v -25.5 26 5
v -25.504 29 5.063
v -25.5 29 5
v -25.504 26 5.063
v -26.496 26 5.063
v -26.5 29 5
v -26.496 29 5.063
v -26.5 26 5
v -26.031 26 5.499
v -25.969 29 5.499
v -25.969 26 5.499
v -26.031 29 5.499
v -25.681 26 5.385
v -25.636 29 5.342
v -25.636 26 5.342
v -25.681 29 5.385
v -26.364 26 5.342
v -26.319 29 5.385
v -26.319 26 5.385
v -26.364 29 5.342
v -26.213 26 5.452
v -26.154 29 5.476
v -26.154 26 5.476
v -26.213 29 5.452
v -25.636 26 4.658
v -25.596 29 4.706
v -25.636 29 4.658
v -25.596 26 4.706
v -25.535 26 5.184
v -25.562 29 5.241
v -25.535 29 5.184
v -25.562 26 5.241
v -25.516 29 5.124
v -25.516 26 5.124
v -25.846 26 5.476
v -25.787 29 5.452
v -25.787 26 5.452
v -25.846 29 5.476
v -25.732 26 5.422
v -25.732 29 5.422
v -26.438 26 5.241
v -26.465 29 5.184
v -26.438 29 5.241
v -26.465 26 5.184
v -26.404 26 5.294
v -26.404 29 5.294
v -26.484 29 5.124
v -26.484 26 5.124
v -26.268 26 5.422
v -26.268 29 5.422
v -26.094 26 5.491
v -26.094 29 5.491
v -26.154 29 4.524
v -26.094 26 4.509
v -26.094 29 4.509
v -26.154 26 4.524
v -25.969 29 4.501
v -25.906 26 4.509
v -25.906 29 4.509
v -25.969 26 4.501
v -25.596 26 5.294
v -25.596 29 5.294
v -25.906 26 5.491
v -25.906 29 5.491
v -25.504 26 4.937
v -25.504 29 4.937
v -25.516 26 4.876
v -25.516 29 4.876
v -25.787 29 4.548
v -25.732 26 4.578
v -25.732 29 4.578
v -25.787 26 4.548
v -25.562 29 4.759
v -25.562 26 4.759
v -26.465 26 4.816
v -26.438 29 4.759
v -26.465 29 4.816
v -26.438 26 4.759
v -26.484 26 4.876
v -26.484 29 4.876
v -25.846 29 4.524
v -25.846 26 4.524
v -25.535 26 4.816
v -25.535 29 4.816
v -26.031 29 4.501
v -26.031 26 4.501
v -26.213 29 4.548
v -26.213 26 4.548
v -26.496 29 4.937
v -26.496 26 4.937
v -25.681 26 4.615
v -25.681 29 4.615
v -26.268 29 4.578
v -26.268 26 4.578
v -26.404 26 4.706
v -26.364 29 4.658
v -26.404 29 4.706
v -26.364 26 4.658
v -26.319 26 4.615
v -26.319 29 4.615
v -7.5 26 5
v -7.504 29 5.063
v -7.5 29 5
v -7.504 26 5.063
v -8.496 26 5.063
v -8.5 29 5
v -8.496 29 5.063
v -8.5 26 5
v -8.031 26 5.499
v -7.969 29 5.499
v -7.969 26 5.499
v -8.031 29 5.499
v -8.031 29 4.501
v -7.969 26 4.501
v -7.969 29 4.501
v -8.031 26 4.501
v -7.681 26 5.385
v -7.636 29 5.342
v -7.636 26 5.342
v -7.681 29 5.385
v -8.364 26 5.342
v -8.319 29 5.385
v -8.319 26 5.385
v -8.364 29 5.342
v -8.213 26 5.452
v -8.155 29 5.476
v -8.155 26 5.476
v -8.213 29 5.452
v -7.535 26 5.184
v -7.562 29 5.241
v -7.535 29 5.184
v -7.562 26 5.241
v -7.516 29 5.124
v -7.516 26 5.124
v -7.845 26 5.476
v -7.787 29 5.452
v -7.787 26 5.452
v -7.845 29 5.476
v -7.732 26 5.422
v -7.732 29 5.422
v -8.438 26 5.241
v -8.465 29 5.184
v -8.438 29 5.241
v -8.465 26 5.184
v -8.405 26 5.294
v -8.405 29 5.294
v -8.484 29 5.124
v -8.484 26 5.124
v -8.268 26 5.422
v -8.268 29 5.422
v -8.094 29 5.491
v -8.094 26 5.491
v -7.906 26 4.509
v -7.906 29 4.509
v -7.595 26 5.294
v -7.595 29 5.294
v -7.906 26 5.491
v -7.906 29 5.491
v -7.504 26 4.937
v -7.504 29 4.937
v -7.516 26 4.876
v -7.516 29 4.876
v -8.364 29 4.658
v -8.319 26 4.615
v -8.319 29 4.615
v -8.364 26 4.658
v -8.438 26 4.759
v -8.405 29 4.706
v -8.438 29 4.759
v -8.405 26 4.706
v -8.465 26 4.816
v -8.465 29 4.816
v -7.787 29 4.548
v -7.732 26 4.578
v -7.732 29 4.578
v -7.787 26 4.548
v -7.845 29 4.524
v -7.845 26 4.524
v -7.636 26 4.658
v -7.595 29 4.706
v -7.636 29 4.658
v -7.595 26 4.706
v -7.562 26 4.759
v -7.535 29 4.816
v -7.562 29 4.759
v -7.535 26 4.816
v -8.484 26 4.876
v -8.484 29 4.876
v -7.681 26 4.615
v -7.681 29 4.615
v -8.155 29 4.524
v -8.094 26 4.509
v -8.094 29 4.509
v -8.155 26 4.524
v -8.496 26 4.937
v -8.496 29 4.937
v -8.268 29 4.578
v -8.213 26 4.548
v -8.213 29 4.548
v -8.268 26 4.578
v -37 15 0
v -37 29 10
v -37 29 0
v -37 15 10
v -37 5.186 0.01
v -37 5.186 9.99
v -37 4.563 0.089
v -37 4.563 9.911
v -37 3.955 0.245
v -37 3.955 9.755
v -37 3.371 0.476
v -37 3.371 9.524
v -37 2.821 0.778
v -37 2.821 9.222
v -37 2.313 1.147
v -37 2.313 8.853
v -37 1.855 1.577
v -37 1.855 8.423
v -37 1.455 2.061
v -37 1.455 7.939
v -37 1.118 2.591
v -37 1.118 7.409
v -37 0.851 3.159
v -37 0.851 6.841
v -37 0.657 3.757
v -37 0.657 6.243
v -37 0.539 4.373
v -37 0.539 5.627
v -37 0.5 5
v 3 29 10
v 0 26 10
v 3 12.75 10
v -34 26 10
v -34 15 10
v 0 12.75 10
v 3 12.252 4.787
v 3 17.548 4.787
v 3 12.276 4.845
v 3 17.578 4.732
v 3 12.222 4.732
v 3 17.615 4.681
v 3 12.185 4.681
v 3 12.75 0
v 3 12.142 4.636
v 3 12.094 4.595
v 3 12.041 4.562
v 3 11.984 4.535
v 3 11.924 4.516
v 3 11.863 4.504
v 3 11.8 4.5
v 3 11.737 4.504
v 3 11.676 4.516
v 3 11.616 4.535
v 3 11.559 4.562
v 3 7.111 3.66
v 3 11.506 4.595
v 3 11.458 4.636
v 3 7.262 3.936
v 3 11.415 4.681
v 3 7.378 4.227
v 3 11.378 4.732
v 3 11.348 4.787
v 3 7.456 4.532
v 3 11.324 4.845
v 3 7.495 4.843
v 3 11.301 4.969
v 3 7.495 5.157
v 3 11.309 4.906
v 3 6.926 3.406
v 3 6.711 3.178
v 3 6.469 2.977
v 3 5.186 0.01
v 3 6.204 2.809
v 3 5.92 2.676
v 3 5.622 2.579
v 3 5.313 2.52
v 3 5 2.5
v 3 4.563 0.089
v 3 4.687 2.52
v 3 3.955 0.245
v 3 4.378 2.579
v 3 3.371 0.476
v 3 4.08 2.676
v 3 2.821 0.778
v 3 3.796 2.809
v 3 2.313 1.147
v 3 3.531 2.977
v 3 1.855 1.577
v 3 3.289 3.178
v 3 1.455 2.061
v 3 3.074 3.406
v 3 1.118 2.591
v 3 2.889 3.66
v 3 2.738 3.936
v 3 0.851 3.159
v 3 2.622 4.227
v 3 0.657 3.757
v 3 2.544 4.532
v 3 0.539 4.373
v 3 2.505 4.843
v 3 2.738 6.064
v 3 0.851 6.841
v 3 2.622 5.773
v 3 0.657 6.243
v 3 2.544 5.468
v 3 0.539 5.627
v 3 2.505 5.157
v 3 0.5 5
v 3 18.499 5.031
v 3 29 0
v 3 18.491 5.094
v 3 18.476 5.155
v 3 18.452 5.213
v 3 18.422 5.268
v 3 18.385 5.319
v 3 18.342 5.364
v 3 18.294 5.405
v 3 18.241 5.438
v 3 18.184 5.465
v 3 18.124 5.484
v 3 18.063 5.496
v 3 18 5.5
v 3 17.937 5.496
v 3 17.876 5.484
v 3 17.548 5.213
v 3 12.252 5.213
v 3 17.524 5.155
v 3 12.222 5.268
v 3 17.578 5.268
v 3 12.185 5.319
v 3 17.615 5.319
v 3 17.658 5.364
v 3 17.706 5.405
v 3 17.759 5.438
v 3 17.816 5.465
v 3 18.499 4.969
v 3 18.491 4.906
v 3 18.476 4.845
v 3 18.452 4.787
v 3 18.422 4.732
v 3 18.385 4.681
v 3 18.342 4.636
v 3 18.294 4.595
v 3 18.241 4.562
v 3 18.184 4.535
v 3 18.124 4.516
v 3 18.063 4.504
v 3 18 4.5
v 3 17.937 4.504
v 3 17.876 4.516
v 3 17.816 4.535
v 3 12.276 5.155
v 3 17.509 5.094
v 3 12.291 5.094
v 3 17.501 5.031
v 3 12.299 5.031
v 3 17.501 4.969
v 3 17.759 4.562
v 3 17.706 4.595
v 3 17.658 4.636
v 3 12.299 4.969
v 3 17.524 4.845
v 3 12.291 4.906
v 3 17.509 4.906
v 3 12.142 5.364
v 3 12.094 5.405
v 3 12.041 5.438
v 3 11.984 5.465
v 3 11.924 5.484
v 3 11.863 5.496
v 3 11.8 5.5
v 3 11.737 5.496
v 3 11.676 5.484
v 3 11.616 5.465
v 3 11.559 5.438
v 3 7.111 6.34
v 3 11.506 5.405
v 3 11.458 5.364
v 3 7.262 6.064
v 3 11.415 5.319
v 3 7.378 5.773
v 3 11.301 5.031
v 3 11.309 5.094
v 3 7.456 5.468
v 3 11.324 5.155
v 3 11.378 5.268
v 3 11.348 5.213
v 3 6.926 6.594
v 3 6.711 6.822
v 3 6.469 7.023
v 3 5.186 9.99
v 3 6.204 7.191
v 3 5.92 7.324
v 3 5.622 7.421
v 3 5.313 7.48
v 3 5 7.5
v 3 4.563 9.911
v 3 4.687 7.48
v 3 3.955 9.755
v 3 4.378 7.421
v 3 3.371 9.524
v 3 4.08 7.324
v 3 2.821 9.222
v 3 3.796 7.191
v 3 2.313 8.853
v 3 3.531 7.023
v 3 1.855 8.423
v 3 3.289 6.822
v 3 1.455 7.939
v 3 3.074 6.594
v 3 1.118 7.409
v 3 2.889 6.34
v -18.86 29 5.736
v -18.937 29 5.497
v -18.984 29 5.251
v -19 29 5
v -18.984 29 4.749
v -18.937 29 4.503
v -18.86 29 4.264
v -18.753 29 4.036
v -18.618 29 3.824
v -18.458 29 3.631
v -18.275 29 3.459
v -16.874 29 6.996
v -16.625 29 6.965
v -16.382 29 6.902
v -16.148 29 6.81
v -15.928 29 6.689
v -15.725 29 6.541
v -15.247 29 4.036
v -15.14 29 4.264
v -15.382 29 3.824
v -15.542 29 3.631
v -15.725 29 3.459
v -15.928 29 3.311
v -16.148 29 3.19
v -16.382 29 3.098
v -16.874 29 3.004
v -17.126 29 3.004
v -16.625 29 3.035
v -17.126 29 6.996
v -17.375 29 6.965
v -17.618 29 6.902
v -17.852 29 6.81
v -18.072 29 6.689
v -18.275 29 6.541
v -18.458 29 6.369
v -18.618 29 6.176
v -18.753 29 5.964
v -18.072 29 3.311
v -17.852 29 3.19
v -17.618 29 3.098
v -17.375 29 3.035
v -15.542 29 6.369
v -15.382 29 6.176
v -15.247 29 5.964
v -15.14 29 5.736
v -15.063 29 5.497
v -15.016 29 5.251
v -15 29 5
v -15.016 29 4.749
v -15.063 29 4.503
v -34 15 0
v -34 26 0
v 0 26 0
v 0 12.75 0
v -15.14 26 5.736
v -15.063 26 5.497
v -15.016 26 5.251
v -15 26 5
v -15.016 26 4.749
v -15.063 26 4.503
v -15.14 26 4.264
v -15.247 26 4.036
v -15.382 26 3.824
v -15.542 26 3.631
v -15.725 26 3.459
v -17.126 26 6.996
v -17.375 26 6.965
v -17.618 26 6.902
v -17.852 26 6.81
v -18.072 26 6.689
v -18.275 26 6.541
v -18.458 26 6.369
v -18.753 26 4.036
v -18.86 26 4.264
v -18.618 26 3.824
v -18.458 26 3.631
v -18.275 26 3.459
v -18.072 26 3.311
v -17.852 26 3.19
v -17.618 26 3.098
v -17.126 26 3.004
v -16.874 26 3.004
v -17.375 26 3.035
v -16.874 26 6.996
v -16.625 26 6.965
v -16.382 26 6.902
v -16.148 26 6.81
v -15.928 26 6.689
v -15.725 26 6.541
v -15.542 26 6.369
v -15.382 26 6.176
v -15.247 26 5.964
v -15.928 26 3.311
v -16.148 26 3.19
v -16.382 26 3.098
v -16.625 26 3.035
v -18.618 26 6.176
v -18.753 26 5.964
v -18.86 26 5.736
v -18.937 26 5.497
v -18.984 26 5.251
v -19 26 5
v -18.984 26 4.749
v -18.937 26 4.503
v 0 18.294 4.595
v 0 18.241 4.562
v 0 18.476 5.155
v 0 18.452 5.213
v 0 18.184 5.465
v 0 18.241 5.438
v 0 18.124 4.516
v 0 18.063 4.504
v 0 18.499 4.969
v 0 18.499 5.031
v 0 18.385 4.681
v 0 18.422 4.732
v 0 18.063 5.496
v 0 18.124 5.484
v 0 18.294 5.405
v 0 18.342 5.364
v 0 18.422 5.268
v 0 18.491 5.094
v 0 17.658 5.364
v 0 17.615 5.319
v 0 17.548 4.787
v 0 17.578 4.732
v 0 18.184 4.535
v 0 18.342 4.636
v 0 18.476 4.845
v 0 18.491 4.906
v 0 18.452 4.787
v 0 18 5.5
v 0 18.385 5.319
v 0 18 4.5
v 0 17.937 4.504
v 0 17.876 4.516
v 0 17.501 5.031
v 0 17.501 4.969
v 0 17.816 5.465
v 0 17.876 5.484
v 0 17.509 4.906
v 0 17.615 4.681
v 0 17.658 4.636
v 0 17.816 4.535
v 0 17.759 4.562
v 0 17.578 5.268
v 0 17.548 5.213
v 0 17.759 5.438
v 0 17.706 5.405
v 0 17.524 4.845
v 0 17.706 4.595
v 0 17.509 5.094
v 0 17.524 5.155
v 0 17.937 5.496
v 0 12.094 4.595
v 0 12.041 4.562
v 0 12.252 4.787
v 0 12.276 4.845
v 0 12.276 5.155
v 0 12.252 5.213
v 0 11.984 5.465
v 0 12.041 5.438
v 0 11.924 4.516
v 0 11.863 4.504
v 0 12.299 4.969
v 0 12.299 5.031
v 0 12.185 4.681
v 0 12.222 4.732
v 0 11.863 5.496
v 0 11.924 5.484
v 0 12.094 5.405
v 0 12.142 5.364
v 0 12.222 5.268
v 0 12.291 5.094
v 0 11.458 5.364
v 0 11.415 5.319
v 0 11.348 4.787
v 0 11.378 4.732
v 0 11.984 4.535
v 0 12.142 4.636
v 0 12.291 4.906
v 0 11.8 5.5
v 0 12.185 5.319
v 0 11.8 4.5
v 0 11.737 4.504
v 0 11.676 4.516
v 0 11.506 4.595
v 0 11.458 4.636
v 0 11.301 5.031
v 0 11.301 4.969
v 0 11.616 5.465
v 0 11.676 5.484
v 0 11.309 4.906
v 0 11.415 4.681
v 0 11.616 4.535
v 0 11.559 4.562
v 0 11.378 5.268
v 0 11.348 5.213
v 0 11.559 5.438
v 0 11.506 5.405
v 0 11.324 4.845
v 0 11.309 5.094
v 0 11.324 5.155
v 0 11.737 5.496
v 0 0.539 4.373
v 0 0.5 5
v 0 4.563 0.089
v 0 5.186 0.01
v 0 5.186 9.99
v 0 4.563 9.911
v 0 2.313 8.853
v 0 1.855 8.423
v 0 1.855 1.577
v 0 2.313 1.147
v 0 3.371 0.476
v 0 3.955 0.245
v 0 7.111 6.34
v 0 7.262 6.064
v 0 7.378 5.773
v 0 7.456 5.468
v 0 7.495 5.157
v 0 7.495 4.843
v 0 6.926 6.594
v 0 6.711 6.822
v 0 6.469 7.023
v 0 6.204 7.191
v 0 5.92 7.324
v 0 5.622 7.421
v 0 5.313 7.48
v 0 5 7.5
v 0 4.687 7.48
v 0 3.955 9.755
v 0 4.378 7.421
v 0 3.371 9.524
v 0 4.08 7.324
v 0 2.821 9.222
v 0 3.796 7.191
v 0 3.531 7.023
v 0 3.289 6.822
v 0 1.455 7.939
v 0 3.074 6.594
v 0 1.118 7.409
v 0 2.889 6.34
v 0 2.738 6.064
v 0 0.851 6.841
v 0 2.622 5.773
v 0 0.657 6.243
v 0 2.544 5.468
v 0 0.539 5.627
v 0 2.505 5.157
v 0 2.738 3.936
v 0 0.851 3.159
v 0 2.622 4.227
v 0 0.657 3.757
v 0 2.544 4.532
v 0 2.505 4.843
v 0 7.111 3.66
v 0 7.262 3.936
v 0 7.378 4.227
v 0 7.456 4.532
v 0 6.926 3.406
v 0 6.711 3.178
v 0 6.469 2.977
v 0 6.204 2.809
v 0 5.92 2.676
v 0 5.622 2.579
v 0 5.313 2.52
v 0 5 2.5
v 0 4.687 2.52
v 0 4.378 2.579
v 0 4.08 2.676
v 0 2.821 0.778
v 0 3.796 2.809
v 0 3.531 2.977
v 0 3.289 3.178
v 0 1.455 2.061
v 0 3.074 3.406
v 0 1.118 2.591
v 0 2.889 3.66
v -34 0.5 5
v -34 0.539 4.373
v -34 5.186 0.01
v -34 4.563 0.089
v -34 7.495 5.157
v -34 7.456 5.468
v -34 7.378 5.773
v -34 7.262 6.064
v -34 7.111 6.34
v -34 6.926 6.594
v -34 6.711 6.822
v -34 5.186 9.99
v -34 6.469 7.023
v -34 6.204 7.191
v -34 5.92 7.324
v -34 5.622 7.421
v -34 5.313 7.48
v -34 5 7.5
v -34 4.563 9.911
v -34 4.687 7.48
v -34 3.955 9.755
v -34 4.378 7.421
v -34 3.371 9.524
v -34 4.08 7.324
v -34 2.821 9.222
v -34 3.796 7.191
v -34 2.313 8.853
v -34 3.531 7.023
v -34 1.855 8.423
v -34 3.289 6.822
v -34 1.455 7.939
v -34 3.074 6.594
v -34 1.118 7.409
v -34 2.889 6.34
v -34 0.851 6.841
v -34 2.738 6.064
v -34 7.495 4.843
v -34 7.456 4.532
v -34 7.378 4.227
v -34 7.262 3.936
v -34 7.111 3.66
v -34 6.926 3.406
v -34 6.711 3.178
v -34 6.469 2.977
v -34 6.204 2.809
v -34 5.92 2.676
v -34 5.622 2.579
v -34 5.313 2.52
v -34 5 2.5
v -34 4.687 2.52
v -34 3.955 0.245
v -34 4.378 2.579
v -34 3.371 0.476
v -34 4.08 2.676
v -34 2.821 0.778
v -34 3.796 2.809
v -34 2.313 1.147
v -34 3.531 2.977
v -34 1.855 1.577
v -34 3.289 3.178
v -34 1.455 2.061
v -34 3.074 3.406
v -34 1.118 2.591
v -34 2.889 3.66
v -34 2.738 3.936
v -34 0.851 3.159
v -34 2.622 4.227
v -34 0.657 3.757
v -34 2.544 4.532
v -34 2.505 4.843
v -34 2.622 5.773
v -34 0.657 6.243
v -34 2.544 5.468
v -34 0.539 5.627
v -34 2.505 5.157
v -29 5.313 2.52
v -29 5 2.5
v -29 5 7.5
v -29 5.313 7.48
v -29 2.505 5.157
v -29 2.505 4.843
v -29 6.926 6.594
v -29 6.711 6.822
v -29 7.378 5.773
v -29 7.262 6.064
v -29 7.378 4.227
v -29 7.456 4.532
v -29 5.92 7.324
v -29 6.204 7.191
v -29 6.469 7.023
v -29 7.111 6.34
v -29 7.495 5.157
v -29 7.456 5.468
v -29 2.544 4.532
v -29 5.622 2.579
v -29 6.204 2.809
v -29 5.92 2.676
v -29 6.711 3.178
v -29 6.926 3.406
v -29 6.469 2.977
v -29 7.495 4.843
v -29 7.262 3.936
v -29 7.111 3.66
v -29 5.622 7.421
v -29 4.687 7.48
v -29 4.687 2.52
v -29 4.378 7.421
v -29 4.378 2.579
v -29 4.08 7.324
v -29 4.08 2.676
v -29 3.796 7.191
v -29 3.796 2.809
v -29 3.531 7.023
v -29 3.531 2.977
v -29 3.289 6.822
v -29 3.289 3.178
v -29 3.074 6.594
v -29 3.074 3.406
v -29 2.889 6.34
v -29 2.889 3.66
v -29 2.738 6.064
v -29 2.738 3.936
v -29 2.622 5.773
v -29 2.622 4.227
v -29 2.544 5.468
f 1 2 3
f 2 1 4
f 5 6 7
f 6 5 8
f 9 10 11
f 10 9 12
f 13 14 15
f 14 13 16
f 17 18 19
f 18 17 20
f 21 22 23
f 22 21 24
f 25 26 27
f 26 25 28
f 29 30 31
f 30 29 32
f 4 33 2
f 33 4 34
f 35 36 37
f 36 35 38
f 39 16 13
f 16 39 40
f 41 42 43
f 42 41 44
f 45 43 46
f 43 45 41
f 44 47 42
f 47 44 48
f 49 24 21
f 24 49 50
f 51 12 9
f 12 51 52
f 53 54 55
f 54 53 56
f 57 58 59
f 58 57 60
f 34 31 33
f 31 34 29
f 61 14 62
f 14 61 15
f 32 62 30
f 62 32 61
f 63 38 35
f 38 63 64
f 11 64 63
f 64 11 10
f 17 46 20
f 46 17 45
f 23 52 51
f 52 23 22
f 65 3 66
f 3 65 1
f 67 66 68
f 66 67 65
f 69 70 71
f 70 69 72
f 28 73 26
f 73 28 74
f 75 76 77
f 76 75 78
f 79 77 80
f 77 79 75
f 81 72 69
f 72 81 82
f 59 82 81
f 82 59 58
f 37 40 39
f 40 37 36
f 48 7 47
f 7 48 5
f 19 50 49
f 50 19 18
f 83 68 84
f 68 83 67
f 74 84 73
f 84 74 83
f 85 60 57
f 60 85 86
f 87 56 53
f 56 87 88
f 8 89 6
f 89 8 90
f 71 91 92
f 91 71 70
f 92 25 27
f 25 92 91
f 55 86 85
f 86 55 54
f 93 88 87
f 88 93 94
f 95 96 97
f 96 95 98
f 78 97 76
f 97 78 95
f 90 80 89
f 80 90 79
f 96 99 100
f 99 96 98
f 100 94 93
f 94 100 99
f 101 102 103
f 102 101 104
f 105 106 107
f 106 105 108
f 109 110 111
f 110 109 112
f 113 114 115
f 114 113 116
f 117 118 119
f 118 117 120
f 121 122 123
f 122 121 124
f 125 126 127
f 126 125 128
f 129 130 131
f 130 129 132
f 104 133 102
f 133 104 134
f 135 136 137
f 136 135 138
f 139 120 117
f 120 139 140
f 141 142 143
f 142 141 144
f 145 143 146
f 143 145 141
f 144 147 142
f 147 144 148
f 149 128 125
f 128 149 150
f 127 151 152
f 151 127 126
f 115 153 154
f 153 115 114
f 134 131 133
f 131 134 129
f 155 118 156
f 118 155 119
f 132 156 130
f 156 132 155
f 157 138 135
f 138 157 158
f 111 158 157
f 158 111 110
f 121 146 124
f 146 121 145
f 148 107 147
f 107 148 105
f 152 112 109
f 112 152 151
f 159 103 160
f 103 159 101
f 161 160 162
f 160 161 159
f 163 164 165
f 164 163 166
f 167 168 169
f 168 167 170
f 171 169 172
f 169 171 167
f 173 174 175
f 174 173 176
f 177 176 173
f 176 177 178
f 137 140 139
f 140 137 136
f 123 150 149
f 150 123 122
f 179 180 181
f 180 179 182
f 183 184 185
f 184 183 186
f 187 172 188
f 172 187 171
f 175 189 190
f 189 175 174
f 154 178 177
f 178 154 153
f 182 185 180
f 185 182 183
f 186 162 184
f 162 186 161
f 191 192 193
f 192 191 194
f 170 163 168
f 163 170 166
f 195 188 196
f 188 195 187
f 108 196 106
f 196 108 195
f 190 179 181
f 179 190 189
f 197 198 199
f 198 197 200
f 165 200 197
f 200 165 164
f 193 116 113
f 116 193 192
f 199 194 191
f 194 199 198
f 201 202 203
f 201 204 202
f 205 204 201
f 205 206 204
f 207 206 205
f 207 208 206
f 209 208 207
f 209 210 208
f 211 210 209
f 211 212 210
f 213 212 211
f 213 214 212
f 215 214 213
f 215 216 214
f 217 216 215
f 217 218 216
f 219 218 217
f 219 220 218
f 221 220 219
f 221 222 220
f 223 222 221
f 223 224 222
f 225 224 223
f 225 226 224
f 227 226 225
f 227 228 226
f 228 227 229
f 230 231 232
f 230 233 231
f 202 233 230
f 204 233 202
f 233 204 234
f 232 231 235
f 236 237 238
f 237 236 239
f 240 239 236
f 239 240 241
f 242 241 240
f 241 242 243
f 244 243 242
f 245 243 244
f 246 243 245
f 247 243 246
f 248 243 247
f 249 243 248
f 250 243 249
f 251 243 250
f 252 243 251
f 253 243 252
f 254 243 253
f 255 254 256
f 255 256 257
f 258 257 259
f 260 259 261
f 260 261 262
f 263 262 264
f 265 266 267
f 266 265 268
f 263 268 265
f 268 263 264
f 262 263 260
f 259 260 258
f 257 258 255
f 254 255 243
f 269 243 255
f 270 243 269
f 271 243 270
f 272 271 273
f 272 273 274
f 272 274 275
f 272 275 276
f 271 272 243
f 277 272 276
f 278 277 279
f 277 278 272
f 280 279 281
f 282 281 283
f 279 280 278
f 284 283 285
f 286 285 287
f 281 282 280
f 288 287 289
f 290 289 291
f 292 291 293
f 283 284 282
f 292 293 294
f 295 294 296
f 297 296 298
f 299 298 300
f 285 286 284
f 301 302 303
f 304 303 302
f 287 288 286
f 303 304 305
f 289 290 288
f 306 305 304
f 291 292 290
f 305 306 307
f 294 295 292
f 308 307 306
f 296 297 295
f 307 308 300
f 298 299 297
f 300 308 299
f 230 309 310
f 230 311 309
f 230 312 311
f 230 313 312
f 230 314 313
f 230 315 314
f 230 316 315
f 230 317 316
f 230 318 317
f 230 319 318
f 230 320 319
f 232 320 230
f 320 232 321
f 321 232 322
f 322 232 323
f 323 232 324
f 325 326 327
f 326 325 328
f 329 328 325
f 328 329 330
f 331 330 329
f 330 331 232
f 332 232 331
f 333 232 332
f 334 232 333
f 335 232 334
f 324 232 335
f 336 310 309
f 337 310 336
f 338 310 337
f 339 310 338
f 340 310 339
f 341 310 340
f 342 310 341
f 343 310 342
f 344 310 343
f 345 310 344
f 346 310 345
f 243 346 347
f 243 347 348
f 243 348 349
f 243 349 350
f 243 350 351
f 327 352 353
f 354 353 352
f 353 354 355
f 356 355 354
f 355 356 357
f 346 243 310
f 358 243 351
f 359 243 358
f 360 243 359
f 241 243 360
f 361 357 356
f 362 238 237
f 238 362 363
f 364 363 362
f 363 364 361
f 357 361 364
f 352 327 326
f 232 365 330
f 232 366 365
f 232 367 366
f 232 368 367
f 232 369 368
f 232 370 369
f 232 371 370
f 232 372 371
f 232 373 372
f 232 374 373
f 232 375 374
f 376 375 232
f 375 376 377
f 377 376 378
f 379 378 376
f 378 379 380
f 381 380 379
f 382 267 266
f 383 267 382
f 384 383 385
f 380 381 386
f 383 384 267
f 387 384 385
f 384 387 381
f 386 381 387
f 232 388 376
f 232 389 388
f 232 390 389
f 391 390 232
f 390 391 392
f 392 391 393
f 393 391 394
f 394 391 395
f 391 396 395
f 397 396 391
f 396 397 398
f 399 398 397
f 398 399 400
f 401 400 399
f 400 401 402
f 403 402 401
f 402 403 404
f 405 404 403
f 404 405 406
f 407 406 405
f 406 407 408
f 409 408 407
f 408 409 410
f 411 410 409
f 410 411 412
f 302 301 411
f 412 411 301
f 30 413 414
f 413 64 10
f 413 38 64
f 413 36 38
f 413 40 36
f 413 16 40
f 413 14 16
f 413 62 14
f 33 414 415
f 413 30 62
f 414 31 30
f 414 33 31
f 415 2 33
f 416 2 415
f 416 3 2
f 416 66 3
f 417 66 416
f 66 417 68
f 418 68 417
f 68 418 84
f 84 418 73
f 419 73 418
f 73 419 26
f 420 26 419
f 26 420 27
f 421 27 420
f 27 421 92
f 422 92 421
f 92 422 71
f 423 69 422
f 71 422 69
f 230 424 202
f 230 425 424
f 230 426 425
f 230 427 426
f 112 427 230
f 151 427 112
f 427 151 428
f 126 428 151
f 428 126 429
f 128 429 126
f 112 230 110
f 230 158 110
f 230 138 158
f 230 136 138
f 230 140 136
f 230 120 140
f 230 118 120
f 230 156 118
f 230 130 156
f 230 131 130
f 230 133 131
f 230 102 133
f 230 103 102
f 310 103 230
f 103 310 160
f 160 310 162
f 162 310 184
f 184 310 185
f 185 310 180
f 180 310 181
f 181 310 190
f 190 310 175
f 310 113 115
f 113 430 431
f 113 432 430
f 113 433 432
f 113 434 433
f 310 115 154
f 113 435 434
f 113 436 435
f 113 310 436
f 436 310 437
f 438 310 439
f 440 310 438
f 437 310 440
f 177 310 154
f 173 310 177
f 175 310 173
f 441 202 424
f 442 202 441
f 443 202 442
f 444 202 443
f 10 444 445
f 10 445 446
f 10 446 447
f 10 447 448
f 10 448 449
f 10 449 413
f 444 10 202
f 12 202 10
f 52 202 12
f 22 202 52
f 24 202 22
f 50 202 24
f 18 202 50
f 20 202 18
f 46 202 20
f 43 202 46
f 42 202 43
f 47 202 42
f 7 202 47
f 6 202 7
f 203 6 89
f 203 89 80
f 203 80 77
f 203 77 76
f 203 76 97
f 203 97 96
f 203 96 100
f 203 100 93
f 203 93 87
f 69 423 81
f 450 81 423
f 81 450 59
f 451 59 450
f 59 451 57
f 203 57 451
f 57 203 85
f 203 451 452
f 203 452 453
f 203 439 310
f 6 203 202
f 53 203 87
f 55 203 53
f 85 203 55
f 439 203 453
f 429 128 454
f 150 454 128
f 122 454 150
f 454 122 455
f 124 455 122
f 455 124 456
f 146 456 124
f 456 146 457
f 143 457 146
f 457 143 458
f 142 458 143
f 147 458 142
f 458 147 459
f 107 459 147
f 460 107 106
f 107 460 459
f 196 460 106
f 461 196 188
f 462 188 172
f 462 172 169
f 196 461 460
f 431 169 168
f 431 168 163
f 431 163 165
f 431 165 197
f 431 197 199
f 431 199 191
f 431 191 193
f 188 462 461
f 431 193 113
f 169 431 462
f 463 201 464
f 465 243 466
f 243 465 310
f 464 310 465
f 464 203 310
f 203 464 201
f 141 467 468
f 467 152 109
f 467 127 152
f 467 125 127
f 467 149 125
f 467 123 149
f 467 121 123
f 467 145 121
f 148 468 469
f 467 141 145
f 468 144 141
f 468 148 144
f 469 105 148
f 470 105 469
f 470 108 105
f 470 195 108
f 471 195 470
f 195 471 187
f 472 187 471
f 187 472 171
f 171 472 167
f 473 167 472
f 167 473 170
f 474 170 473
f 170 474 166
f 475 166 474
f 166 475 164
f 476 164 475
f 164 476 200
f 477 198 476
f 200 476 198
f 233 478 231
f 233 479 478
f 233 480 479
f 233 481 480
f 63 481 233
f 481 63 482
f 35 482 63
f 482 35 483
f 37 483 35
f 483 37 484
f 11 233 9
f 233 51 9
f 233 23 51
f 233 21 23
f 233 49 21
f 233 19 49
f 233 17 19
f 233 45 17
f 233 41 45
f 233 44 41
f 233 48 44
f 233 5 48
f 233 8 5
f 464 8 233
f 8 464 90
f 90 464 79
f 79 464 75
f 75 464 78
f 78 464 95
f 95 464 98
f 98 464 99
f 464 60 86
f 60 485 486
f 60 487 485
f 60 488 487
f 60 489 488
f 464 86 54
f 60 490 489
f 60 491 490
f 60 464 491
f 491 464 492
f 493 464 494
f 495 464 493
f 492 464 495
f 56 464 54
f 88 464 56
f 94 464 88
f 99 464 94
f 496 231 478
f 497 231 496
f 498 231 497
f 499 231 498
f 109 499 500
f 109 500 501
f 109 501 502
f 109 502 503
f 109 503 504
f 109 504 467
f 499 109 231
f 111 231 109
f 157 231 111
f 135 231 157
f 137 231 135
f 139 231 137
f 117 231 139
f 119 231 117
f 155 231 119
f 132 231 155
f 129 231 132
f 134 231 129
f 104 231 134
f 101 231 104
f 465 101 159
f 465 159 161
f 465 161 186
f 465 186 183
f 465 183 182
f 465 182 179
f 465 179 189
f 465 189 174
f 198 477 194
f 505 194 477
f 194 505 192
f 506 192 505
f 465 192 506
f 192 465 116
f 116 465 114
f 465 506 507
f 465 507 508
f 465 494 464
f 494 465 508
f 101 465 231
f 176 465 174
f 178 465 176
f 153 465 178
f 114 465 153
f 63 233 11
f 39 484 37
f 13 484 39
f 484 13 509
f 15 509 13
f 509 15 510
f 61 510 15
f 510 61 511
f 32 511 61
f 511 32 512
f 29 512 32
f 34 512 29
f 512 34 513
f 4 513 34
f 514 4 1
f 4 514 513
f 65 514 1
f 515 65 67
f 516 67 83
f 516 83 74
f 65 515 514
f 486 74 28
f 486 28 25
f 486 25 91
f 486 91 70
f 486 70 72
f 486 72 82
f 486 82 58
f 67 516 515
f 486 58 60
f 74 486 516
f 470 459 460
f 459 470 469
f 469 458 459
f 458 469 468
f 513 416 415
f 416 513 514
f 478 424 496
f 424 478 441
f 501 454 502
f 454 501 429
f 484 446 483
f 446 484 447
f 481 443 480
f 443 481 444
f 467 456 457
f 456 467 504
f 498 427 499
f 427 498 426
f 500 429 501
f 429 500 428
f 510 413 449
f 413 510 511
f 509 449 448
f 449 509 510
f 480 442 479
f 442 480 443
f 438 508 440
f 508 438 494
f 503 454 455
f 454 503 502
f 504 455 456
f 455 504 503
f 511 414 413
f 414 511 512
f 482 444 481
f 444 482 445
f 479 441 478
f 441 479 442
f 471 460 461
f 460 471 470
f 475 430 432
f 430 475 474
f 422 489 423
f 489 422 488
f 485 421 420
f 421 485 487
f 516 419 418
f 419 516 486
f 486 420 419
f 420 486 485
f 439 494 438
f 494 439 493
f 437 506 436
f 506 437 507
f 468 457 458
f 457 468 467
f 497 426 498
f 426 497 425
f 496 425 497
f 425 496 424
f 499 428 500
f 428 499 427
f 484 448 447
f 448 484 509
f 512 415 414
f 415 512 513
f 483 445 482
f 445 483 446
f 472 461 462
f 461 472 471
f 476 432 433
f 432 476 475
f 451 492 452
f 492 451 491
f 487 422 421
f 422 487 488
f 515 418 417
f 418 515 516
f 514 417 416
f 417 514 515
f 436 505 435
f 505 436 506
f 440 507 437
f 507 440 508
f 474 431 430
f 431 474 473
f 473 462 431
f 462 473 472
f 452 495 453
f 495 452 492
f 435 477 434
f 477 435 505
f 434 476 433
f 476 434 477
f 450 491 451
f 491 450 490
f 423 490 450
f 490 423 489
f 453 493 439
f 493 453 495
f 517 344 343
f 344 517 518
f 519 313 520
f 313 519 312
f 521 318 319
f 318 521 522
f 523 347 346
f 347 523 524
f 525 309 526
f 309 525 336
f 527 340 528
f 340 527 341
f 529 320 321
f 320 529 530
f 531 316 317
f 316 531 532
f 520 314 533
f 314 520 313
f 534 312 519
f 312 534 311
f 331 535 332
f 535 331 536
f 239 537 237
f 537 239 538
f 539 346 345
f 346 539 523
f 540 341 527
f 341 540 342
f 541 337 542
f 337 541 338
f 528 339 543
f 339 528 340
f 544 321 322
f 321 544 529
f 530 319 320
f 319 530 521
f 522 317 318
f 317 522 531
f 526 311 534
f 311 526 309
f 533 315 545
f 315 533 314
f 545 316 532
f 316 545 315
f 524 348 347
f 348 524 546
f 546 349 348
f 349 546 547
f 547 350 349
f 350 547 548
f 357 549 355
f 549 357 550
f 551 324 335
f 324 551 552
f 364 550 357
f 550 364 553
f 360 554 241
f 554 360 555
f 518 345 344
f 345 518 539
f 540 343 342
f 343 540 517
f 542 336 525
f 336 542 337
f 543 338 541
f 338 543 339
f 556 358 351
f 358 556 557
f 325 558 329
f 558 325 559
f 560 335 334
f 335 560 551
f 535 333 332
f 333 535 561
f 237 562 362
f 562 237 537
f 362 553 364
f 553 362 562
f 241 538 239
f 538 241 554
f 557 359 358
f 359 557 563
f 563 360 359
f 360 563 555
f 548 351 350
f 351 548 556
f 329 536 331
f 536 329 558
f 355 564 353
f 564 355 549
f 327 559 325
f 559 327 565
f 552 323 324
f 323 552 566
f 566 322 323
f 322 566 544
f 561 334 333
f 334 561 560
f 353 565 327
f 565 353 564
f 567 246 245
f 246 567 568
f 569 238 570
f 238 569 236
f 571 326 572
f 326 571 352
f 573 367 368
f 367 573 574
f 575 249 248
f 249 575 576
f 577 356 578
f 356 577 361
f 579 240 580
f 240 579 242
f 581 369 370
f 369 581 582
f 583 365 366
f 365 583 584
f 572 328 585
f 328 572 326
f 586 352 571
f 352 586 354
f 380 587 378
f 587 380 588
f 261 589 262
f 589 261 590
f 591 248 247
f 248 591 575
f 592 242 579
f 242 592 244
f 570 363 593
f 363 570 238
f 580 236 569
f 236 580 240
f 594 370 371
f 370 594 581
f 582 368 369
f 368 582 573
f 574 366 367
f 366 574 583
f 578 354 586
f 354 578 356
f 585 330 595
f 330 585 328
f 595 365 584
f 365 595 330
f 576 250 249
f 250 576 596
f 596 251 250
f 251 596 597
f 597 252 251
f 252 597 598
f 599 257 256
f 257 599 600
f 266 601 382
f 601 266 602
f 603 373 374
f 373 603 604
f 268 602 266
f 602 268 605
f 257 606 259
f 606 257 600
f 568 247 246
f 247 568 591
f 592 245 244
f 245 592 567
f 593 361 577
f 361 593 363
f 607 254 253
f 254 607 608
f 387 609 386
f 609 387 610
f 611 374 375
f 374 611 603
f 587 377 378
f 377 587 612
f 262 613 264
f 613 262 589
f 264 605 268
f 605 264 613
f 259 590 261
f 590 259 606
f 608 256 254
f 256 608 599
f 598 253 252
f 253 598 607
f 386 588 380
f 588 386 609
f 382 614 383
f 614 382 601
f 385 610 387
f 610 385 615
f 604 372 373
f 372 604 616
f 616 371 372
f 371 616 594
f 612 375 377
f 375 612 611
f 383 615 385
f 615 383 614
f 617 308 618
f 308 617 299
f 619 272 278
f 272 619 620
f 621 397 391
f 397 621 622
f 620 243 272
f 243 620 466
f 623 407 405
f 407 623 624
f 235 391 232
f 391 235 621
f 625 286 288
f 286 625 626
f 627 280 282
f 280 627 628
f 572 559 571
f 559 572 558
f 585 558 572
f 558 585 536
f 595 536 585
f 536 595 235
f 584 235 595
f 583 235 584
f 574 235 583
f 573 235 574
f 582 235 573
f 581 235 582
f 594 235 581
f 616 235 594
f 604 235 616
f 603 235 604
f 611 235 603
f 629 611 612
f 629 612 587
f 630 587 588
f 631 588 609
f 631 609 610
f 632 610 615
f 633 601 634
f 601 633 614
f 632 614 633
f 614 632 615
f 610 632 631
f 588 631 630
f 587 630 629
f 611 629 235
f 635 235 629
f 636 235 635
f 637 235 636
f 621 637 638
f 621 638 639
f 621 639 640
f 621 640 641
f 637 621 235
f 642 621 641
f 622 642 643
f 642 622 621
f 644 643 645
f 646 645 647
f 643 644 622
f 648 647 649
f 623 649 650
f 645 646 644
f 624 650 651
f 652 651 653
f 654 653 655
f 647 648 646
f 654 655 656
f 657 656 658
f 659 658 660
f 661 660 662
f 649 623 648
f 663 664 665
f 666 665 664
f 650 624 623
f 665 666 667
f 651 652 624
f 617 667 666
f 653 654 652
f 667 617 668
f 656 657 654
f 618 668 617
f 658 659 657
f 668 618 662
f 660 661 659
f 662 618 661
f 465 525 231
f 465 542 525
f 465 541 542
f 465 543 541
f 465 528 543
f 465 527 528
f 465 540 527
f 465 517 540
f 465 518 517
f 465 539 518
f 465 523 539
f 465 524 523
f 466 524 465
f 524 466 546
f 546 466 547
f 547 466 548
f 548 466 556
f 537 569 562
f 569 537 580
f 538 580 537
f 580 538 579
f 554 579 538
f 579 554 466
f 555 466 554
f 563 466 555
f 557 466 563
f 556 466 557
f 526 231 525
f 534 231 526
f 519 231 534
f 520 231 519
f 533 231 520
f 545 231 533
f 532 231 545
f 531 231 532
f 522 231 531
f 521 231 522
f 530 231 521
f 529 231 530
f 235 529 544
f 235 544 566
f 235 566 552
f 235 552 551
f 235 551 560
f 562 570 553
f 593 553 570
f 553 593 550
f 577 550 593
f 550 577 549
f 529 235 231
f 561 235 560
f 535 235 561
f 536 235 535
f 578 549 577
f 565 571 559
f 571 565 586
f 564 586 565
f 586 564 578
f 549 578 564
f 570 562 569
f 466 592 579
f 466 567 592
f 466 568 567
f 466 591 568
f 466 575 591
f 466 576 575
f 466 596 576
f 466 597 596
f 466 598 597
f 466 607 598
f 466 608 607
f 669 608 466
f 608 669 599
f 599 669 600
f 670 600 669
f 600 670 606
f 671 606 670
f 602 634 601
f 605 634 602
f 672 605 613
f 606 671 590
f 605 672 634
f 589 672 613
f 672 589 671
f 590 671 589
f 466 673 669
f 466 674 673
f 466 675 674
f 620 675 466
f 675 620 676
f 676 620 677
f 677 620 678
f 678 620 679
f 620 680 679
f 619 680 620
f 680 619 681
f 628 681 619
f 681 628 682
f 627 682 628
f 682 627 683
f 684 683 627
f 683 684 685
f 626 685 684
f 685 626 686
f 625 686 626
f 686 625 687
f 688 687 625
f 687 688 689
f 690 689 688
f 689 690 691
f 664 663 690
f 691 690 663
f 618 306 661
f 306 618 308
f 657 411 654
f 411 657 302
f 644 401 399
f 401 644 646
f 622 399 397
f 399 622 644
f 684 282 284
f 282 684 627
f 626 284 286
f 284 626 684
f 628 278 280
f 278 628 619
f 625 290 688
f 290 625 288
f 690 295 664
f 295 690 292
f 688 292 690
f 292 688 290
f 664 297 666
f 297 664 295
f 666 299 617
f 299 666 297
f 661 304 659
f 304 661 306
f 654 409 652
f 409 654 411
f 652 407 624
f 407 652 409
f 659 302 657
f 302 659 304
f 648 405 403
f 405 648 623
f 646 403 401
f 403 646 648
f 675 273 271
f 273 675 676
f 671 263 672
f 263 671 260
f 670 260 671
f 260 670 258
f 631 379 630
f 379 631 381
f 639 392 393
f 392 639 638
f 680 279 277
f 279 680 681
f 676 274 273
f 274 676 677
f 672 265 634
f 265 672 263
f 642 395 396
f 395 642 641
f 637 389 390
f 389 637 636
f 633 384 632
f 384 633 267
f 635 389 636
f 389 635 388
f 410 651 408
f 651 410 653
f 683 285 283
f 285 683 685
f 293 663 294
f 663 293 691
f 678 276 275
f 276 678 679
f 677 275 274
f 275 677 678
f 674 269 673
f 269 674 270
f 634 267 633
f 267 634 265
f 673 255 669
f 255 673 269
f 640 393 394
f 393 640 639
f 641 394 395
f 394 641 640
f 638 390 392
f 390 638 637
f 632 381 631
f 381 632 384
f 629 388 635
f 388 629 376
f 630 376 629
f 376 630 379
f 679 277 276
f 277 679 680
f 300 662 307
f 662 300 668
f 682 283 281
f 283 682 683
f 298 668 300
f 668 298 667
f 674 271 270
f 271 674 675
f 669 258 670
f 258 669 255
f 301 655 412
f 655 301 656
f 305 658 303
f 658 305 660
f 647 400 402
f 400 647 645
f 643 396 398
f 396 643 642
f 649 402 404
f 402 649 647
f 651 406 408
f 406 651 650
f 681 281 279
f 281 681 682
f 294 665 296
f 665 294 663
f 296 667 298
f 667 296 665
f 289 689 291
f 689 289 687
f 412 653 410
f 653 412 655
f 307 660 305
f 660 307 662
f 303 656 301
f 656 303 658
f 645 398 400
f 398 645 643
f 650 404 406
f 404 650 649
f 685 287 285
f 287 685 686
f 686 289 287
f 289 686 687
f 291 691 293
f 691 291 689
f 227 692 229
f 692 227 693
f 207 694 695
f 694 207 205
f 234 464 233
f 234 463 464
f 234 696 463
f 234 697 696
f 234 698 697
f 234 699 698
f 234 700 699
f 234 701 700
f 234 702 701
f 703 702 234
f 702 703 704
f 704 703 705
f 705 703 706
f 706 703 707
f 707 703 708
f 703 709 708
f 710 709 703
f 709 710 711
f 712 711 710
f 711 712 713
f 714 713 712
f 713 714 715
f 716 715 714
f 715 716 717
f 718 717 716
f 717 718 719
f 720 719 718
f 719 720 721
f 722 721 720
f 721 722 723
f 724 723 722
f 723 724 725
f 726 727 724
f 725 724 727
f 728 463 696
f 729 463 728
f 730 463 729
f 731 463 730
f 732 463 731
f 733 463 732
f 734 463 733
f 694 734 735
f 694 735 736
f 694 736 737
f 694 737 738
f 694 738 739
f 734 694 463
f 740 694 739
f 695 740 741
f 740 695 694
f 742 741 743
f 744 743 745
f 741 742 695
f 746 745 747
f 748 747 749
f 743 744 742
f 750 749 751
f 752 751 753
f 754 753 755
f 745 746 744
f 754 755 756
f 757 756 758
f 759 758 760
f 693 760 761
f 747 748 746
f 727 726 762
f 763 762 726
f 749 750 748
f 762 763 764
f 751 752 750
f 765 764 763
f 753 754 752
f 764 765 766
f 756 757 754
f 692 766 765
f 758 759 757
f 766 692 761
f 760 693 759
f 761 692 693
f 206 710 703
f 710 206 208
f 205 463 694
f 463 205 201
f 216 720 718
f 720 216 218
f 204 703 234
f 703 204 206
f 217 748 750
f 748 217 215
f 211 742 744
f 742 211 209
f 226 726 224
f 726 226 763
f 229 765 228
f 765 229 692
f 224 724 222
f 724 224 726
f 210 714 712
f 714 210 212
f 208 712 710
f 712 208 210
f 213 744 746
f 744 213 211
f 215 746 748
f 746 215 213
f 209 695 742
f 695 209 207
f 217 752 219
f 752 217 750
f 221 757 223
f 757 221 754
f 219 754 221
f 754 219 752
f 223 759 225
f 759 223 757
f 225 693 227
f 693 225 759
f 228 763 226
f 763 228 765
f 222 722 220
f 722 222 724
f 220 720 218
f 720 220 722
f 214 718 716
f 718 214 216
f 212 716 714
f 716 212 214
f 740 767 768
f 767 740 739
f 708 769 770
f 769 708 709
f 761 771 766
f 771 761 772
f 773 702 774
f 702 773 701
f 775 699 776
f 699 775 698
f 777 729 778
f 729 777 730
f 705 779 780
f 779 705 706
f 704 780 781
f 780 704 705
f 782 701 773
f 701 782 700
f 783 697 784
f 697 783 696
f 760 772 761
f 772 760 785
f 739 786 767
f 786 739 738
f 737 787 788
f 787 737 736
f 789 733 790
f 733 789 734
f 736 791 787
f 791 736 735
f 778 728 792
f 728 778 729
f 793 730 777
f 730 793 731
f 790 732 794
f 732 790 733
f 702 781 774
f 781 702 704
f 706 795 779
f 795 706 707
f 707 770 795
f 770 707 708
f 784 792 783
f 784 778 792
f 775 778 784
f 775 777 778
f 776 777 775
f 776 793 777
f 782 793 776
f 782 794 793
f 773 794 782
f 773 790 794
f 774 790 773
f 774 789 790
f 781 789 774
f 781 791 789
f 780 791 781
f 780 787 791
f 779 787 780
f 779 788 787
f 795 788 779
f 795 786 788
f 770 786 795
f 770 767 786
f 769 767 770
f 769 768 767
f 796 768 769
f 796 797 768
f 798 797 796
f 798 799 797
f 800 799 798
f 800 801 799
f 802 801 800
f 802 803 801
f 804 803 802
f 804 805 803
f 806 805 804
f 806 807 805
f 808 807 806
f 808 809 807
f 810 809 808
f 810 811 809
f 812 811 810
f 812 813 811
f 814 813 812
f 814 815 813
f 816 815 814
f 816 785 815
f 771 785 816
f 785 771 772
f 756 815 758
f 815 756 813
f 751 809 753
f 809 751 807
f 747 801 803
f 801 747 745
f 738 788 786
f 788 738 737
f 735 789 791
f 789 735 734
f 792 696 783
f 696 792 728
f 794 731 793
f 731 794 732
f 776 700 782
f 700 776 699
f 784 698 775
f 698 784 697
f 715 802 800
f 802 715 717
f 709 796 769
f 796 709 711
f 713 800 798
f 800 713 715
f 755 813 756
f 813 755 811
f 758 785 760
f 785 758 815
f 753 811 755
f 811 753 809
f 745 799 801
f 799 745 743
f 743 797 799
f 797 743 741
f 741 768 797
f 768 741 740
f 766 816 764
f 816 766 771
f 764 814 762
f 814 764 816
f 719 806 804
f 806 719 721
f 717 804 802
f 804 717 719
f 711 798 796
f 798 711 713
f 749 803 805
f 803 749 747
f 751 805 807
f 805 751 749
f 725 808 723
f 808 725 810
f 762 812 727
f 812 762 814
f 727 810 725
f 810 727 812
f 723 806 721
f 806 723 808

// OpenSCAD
anchoCubo = 3;
alturaCubo = 10;


difference() {
translate([-17,27.5,5])
cube ([40,anchoCubo,alturaCubo], center = true);
rotate([90, 0, 0])
translate([-17,5,-35])
cylinder(h = 10, r = 2, $fn=50);
    
rotate([90, 0, 0])
    for(i = [-26, -8])
translate([i,5,-30])
cylinder(h = 10, r = 0.5, $fn=50);


}



hull() {
rotate([0,0,90])
translate([20.5,35.5,5])
union() {
cube ([11,anchoCubo,alturaCubo], center = true);
translate([-15,anchoCubo/2,0])
rotate([90, 0, 0])
    cylinder(h = anchoCubo, r = alturaCubo/2,$fn=50);   
}
}
translate([-35,5,5])
rotate([0, 90, 0])
cylinder(h = 6, r = 2.5, $fn=50);


difference() {
 hull(){
rotate([0,0,90])
translate([20.5,-1.5,5])
union() {
cube ([15.5,anchoCubo,alturaCubo], center = true);
translate([-15,anchoCubo/2,0])
rotate([90, 0, 0])
    cylinder(h = anchoCubo, r = alturaCubo/2,$fn=50);
}
}
for(i=[18, 11.8]) {
translate([-5,i,alturaCubo/2])
rotate([0, 90, 0])
    cylinder(h = 10, r = 0.5,$fn=50); 
}
translate([-5,5,alturaCubo/2])
rotate([0, 90, 0])
    cylinder(h = 10, r = 2.5,$fn=50); 
}
